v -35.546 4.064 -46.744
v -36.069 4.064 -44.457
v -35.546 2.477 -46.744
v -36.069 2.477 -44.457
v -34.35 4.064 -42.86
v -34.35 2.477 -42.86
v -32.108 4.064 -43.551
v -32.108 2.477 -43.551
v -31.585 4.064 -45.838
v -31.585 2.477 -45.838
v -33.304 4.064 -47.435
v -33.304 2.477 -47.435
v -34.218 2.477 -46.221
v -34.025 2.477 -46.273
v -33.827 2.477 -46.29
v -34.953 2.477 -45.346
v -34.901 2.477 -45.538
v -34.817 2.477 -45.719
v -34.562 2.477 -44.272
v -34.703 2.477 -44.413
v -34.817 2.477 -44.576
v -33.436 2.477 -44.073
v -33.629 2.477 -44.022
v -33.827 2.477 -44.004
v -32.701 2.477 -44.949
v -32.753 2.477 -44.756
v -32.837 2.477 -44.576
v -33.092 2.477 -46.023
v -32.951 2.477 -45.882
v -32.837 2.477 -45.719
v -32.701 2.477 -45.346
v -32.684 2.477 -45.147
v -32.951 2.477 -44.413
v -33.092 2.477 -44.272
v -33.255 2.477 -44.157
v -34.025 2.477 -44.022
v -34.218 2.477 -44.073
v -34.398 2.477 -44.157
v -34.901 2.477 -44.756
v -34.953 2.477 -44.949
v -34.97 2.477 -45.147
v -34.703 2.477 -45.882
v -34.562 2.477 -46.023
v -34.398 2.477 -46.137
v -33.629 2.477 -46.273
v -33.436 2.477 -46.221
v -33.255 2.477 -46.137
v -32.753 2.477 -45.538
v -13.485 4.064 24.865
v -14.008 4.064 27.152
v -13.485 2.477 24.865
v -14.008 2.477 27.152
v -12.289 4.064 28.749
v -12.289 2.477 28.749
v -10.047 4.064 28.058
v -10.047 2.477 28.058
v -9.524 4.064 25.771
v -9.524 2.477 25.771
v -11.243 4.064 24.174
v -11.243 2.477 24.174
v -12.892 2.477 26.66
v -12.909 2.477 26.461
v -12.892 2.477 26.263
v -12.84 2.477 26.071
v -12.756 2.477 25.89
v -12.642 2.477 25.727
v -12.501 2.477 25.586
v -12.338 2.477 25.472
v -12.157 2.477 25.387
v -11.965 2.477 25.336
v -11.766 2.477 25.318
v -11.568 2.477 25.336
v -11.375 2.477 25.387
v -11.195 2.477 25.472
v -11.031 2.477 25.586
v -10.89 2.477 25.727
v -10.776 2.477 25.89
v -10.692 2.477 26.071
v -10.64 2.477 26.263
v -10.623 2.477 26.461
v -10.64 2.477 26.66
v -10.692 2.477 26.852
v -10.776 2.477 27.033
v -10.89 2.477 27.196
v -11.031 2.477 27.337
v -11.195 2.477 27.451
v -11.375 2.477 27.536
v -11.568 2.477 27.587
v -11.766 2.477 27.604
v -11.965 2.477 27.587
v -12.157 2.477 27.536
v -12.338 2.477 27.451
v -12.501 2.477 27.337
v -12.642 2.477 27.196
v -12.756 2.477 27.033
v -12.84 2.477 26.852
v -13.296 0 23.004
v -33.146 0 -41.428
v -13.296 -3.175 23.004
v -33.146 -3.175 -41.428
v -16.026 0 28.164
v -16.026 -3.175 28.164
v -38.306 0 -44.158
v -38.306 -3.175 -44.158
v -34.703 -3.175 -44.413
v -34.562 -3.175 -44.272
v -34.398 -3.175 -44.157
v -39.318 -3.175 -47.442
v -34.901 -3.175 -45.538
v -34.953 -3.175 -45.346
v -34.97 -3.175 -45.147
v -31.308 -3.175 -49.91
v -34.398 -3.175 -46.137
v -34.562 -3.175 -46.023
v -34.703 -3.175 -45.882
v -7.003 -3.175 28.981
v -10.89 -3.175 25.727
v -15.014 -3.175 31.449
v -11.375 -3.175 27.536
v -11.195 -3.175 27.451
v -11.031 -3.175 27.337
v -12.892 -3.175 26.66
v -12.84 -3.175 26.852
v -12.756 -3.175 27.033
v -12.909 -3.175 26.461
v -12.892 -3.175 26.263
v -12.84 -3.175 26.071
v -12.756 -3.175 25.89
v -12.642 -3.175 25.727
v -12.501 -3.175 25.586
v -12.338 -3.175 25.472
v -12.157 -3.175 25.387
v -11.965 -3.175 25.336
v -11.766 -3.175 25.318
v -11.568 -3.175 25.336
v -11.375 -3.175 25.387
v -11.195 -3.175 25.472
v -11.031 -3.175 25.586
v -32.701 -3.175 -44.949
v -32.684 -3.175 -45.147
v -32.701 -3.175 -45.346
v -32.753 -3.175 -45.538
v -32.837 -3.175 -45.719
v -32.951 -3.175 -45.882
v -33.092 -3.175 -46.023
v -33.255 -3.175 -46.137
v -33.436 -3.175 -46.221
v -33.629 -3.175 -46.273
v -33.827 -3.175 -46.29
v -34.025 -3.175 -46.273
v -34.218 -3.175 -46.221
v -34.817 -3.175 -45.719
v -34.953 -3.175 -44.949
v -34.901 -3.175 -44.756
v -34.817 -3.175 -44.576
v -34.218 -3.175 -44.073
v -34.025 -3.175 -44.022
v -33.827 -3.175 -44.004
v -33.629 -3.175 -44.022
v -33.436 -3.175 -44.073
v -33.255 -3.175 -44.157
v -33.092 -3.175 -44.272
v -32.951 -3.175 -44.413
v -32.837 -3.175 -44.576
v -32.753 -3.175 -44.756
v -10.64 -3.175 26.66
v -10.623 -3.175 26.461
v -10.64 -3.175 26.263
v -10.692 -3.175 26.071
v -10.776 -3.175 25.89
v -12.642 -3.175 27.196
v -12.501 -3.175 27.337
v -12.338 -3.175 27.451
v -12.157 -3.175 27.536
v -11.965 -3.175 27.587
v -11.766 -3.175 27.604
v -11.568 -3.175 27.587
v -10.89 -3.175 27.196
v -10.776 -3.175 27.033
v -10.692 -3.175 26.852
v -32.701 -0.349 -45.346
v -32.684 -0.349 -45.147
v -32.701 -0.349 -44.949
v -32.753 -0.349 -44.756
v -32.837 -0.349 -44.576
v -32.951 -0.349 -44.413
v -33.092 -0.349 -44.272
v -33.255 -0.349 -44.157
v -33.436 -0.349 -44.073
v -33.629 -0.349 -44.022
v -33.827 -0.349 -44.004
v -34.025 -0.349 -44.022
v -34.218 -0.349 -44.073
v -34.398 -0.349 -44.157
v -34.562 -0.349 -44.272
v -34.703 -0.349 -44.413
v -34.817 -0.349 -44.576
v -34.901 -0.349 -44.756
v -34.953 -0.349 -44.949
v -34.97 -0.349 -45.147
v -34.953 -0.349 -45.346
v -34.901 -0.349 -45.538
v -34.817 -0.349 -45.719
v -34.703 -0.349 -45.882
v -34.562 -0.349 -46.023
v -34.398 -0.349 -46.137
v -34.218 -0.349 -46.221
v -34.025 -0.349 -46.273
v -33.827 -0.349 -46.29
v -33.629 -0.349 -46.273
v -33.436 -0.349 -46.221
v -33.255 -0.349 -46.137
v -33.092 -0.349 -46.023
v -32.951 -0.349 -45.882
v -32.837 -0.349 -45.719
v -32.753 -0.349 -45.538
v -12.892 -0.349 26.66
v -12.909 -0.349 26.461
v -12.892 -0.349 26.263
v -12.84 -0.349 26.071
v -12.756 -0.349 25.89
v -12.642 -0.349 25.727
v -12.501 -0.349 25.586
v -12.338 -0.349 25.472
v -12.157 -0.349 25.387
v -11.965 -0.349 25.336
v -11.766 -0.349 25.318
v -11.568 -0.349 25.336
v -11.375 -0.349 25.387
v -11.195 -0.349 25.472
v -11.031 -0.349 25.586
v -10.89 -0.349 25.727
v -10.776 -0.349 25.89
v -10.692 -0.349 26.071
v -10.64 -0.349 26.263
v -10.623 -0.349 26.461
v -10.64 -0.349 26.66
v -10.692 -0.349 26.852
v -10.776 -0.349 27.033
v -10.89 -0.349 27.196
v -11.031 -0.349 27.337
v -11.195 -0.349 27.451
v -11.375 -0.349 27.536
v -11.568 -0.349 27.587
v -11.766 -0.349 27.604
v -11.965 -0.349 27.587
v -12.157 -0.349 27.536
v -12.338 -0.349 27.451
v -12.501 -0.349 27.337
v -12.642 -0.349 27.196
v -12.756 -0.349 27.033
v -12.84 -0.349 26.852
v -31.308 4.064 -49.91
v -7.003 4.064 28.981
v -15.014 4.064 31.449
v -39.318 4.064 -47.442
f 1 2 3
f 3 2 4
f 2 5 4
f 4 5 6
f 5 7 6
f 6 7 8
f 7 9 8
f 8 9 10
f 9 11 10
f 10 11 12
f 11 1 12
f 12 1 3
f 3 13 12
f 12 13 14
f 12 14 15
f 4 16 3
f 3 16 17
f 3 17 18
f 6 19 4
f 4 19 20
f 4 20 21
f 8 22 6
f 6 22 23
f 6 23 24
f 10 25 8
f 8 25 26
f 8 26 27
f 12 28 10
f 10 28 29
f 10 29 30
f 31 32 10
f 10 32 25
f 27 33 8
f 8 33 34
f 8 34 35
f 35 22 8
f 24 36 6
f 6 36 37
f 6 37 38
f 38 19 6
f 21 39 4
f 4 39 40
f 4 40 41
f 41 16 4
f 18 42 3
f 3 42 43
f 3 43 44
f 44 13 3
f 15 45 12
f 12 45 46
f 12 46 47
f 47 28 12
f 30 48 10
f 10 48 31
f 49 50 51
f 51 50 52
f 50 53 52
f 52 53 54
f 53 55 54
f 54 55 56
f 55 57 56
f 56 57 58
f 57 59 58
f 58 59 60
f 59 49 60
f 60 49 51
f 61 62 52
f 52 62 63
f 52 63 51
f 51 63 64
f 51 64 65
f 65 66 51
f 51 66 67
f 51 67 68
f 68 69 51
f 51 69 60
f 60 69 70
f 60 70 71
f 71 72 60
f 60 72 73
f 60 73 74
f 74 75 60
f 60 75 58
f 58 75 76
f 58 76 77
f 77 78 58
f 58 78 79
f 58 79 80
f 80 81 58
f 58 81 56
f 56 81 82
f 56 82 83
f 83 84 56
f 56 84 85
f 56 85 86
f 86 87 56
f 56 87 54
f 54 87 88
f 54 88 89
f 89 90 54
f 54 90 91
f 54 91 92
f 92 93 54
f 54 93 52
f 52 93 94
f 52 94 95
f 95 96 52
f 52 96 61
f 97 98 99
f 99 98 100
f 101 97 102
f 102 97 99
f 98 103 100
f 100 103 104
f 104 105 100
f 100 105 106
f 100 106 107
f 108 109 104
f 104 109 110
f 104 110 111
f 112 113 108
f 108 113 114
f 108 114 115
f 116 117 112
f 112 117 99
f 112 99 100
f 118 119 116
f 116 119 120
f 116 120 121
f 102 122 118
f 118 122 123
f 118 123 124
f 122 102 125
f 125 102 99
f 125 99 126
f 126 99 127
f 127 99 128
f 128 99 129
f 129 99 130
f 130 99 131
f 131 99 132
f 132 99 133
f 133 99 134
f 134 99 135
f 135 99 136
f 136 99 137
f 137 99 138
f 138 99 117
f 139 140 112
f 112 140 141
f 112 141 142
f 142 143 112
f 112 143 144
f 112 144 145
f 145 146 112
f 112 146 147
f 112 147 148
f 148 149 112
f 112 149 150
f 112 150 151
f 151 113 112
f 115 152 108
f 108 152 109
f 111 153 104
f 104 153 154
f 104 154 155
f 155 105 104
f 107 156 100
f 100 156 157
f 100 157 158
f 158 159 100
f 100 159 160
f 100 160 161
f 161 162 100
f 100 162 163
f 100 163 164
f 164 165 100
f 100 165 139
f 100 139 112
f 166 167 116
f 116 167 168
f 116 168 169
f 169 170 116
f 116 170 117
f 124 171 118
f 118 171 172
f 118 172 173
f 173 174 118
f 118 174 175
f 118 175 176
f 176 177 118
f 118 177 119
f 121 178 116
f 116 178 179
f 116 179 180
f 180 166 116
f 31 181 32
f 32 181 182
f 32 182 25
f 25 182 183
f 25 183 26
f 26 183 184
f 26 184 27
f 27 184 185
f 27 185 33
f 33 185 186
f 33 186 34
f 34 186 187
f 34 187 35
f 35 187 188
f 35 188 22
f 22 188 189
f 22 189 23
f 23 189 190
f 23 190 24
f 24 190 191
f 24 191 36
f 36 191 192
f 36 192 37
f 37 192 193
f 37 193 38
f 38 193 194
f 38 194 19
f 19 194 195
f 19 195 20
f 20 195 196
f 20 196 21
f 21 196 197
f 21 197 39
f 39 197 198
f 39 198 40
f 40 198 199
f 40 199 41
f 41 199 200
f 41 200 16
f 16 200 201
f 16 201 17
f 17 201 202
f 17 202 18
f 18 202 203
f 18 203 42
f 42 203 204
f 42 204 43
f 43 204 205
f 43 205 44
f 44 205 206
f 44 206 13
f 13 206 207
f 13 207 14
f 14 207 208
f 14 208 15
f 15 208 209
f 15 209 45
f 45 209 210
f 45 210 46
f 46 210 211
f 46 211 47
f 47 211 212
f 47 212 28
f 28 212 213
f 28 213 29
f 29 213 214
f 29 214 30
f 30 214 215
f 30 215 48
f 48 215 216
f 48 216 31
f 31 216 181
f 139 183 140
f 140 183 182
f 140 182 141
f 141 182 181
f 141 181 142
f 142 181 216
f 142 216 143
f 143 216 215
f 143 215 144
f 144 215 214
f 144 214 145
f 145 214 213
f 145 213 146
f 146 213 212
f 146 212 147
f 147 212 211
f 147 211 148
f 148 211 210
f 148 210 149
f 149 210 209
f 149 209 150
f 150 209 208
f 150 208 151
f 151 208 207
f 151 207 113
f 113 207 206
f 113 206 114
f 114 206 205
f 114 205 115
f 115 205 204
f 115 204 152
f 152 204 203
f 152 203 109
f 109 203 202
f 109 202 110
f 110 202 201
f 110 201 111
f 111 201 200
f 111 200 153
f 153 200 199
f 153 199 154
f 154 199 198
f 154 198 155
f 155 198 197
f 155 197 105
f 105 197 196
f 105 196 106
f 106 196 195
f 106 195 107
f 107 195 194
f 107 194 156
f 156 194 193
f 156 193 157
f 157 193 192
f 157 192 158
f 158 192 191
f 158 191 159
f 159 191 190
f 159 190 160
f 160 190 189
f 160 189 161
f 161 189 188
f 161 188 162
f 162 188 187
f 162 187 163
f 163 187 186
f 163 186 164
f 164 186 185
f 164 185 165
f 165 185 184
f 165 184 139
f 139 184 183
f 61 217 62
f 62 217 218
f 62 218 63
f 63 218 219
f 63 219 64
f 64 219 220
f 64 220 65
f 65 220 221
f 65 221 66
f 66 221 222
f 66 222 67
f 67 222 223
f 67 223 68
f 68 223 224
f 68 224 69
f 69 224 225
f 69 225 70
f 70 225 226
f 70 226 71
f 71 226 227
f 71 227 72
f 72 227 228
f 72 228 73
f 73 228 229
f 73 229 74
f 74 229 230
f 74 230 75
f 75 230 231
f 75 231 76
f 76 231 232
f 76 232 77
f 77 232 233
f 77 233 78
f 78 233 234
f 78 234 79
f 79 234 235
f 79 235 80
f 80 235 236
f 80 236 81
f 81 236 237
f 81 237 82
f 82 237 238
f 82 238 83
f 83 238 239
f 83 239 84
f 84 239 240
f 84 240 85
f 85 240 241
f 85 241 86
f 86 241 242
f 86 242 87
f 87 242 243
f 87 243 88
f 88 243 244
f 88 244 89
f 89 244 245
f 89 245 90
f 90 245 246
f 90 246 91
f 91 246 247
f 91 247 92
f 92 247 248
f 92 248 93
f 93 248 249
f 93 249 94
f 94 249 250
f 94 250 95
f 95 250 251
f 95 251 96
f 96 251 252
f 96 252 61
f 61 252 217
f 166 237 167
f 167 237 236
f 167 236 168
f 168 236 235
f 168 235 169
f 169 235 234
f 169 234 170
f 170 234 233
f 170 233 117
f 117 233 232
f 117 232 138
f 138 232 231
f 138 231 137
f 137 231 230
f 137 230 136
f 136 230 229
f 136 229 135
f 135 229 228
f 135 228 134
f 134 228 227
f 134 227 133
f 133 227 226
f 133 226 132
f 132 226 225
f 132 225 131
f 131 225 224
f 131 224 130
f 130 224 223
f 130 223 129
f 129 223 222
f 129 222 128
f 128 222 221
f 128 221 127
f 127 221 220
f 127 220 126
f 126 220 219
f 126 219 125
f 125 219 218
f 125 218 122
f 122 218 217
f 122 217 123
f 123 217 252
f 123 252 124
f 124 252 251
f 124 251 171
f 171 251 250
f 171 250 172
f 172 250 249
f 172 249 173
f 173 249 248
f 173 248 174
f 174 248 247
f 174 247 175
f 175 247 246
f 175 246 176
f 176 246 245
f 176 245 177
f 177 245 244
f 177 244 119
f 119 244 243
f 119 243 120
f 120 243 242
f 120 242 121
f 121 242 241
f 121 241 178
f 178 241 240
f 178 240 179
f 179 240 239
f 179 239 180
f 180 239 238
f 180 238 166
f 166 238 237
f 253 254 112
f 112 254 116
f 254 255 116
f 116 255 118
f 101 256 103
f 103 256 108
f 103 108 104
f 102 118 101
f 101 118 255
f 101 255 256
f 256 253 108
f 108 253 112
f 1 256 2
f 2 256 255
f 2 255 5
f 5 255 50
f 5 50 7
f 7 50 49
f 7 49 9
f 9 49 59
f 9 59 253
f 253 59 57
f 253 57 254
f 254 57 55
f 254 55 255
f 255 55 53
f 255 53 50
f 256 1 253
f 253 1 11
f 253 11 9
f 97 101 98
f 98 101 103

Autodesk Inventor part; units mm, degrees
ref_plane "YZ Plane" through (0, 0, 0) normal (1, 0, 0) x (0, 1, 0)
ref_plane "XZ Plane" through (0, 0, 0) normal (0, 1, 0) x (-1, 0, 0)
ref_plane "XY Plane" through (0, 0, 0) normal (0, 0, 1) x (1, 0, 0)
sketch "Sketch1" plane through (0, 0, 0) normal (0, 1, 0) x (-1, 0, 0)
  circle A0 centre (33.827, -45.1473) radius 1.143 projected
  circle A1 centre (11.7661, 26.4615) radius 1.143 projected
  line L0 (31.3076, -49.9102) -> (7.0032, 28.9809) projected
  line L1 (7.0032, 28.9809) -> (55.0834, 43.7932) projected
  line L2 (110.1987, -25.6058) -> (31.3076, -49.9102) projected
  line L3 (39.3181, -47.4424) -> (15.0137, 31.4487)
  line L4 (15.0137, 31.4487) -> (7.0032, 28.9809)
  line L5 (7.0032, 28.9809) -> (31.3076, -49.9102)
  point P0 (0, 0)
  point P1 (39.8036, -47.2928)
  point P2 (15.0137, 31.4487)
  dimension "d0" = 8.382
extrude "Extrusion1" add sketch "Sketch1" along normal blind 4.064
sketch "Sketch2" plane through (0, 0, 0) normal (0, -1, 0) x (1, 0, 0)
  line L0 (-13.8437, 22.9527) -> (-33.5699, -41.0776) projected
  line L1 (-16.4887, 27.953) -> (-13.8437, 22.9527) projected
  line L2 (-33.5699, -41.0776) -> (-38.5703, -43.7227) projected
  line L3 (-38.3328, -44.1717) -> (-33.1464, -41.4283)
  line L4 (-33.1464, -41.4283) -> (-13.2963, 23.0042)
  line L5 (-13.2963, 23.0042) -> (-16.0397, 28.1906)
  line L6 (-39.3181, -47.4424) -> (-15.0137, 31.4487) projected
  line L7 (-31.3076, -49.9102) -> (-39.3181, -47.4424) projected
  circle A0 centre (-11.7661, 26.4615) radius 1.143 projected
  circle A1 centre (-33.827, -45.1473) radius 1.143 projected
  line L8 (-7.0032, 28.9809) -> (-31.3076, -49.9102) projected
  line L9 (-15.0137, 31.4487) -> (-7.0032, 28.9809) projected
  point P0 (0, 0)
  point P1 (-37.7505, -43.8637)
  point P2 (-15.7317, 27.6083)
  point P3 (-16.0256, 28.164)
  point P4 (-38.3061, -44.1576)
  dimension "d3" = 0.508
extrude "Extrusion2" add sketch "Sketch2" along normal blind 3.175 contours L6 L9 L8 L7 L3 L4 L5
sketch "Sketch3" plane through (0, 4.064, 0) normal (0, 1, 0) x (1, 0, 0)
  circle A0 centre (-11.7661, -26.4615) radius 1.143 projected
  circle A1 centre (-33.827, 45.1473) radius 1.143 projected
  line L0 (-31.5846, 45.8381) -> (-32.1076, 43.5508)
  line L1 (-32.1076, 43.5508) -> (-34.3499, 42.86)
  line L2 (-34.3499, 42.86) -> (-36.0693, 44.4565)
  line L3 (-36.0693, 44.4565) -> (-35.5464, 46.7439)
  line L4 (-35.5464, 46.7439) -> (-33.3041, 47.4347)
  line L5 (-33.3041, 47.4347) -> (-31.5846, 45.8381)
  line L6 (-9.5237, -25.7707) -> (-10.0466, -28.058)
  line L7 (-10.0466, -28.058) -> (-12.289, -28.7488)
  line L8 (-12.289, -28.7488) -> (-14.0084, -27.1523)
  line L9 (-14.0084, -27.1523) -> (-13.4855, -24.8649)
  line L10 (-13.4855, -24.8649) -> (-11.2431, -24.1741)
  line L11 (-11.2431, -24.1741) -> (-9.5237, -25.7707)
  line L12 (-31.3076, 49.9102) -> (-39.3181, 47.4424) projected
  point P0 (0, 0)
  point P1 (-38.8933, 47.5732)
  dimension "d6" = 4.064
  dimension "d7" = 4.064
extrude "Extrusion3" cut sketch "Sketch3" against normal blind 1.5875 contours A0 | L0 L1 L2 L3 L4 L5 | L6 L7 L8 L9 L10 L11
properties part number "3010 MOUNT PLATE RETAINER"
